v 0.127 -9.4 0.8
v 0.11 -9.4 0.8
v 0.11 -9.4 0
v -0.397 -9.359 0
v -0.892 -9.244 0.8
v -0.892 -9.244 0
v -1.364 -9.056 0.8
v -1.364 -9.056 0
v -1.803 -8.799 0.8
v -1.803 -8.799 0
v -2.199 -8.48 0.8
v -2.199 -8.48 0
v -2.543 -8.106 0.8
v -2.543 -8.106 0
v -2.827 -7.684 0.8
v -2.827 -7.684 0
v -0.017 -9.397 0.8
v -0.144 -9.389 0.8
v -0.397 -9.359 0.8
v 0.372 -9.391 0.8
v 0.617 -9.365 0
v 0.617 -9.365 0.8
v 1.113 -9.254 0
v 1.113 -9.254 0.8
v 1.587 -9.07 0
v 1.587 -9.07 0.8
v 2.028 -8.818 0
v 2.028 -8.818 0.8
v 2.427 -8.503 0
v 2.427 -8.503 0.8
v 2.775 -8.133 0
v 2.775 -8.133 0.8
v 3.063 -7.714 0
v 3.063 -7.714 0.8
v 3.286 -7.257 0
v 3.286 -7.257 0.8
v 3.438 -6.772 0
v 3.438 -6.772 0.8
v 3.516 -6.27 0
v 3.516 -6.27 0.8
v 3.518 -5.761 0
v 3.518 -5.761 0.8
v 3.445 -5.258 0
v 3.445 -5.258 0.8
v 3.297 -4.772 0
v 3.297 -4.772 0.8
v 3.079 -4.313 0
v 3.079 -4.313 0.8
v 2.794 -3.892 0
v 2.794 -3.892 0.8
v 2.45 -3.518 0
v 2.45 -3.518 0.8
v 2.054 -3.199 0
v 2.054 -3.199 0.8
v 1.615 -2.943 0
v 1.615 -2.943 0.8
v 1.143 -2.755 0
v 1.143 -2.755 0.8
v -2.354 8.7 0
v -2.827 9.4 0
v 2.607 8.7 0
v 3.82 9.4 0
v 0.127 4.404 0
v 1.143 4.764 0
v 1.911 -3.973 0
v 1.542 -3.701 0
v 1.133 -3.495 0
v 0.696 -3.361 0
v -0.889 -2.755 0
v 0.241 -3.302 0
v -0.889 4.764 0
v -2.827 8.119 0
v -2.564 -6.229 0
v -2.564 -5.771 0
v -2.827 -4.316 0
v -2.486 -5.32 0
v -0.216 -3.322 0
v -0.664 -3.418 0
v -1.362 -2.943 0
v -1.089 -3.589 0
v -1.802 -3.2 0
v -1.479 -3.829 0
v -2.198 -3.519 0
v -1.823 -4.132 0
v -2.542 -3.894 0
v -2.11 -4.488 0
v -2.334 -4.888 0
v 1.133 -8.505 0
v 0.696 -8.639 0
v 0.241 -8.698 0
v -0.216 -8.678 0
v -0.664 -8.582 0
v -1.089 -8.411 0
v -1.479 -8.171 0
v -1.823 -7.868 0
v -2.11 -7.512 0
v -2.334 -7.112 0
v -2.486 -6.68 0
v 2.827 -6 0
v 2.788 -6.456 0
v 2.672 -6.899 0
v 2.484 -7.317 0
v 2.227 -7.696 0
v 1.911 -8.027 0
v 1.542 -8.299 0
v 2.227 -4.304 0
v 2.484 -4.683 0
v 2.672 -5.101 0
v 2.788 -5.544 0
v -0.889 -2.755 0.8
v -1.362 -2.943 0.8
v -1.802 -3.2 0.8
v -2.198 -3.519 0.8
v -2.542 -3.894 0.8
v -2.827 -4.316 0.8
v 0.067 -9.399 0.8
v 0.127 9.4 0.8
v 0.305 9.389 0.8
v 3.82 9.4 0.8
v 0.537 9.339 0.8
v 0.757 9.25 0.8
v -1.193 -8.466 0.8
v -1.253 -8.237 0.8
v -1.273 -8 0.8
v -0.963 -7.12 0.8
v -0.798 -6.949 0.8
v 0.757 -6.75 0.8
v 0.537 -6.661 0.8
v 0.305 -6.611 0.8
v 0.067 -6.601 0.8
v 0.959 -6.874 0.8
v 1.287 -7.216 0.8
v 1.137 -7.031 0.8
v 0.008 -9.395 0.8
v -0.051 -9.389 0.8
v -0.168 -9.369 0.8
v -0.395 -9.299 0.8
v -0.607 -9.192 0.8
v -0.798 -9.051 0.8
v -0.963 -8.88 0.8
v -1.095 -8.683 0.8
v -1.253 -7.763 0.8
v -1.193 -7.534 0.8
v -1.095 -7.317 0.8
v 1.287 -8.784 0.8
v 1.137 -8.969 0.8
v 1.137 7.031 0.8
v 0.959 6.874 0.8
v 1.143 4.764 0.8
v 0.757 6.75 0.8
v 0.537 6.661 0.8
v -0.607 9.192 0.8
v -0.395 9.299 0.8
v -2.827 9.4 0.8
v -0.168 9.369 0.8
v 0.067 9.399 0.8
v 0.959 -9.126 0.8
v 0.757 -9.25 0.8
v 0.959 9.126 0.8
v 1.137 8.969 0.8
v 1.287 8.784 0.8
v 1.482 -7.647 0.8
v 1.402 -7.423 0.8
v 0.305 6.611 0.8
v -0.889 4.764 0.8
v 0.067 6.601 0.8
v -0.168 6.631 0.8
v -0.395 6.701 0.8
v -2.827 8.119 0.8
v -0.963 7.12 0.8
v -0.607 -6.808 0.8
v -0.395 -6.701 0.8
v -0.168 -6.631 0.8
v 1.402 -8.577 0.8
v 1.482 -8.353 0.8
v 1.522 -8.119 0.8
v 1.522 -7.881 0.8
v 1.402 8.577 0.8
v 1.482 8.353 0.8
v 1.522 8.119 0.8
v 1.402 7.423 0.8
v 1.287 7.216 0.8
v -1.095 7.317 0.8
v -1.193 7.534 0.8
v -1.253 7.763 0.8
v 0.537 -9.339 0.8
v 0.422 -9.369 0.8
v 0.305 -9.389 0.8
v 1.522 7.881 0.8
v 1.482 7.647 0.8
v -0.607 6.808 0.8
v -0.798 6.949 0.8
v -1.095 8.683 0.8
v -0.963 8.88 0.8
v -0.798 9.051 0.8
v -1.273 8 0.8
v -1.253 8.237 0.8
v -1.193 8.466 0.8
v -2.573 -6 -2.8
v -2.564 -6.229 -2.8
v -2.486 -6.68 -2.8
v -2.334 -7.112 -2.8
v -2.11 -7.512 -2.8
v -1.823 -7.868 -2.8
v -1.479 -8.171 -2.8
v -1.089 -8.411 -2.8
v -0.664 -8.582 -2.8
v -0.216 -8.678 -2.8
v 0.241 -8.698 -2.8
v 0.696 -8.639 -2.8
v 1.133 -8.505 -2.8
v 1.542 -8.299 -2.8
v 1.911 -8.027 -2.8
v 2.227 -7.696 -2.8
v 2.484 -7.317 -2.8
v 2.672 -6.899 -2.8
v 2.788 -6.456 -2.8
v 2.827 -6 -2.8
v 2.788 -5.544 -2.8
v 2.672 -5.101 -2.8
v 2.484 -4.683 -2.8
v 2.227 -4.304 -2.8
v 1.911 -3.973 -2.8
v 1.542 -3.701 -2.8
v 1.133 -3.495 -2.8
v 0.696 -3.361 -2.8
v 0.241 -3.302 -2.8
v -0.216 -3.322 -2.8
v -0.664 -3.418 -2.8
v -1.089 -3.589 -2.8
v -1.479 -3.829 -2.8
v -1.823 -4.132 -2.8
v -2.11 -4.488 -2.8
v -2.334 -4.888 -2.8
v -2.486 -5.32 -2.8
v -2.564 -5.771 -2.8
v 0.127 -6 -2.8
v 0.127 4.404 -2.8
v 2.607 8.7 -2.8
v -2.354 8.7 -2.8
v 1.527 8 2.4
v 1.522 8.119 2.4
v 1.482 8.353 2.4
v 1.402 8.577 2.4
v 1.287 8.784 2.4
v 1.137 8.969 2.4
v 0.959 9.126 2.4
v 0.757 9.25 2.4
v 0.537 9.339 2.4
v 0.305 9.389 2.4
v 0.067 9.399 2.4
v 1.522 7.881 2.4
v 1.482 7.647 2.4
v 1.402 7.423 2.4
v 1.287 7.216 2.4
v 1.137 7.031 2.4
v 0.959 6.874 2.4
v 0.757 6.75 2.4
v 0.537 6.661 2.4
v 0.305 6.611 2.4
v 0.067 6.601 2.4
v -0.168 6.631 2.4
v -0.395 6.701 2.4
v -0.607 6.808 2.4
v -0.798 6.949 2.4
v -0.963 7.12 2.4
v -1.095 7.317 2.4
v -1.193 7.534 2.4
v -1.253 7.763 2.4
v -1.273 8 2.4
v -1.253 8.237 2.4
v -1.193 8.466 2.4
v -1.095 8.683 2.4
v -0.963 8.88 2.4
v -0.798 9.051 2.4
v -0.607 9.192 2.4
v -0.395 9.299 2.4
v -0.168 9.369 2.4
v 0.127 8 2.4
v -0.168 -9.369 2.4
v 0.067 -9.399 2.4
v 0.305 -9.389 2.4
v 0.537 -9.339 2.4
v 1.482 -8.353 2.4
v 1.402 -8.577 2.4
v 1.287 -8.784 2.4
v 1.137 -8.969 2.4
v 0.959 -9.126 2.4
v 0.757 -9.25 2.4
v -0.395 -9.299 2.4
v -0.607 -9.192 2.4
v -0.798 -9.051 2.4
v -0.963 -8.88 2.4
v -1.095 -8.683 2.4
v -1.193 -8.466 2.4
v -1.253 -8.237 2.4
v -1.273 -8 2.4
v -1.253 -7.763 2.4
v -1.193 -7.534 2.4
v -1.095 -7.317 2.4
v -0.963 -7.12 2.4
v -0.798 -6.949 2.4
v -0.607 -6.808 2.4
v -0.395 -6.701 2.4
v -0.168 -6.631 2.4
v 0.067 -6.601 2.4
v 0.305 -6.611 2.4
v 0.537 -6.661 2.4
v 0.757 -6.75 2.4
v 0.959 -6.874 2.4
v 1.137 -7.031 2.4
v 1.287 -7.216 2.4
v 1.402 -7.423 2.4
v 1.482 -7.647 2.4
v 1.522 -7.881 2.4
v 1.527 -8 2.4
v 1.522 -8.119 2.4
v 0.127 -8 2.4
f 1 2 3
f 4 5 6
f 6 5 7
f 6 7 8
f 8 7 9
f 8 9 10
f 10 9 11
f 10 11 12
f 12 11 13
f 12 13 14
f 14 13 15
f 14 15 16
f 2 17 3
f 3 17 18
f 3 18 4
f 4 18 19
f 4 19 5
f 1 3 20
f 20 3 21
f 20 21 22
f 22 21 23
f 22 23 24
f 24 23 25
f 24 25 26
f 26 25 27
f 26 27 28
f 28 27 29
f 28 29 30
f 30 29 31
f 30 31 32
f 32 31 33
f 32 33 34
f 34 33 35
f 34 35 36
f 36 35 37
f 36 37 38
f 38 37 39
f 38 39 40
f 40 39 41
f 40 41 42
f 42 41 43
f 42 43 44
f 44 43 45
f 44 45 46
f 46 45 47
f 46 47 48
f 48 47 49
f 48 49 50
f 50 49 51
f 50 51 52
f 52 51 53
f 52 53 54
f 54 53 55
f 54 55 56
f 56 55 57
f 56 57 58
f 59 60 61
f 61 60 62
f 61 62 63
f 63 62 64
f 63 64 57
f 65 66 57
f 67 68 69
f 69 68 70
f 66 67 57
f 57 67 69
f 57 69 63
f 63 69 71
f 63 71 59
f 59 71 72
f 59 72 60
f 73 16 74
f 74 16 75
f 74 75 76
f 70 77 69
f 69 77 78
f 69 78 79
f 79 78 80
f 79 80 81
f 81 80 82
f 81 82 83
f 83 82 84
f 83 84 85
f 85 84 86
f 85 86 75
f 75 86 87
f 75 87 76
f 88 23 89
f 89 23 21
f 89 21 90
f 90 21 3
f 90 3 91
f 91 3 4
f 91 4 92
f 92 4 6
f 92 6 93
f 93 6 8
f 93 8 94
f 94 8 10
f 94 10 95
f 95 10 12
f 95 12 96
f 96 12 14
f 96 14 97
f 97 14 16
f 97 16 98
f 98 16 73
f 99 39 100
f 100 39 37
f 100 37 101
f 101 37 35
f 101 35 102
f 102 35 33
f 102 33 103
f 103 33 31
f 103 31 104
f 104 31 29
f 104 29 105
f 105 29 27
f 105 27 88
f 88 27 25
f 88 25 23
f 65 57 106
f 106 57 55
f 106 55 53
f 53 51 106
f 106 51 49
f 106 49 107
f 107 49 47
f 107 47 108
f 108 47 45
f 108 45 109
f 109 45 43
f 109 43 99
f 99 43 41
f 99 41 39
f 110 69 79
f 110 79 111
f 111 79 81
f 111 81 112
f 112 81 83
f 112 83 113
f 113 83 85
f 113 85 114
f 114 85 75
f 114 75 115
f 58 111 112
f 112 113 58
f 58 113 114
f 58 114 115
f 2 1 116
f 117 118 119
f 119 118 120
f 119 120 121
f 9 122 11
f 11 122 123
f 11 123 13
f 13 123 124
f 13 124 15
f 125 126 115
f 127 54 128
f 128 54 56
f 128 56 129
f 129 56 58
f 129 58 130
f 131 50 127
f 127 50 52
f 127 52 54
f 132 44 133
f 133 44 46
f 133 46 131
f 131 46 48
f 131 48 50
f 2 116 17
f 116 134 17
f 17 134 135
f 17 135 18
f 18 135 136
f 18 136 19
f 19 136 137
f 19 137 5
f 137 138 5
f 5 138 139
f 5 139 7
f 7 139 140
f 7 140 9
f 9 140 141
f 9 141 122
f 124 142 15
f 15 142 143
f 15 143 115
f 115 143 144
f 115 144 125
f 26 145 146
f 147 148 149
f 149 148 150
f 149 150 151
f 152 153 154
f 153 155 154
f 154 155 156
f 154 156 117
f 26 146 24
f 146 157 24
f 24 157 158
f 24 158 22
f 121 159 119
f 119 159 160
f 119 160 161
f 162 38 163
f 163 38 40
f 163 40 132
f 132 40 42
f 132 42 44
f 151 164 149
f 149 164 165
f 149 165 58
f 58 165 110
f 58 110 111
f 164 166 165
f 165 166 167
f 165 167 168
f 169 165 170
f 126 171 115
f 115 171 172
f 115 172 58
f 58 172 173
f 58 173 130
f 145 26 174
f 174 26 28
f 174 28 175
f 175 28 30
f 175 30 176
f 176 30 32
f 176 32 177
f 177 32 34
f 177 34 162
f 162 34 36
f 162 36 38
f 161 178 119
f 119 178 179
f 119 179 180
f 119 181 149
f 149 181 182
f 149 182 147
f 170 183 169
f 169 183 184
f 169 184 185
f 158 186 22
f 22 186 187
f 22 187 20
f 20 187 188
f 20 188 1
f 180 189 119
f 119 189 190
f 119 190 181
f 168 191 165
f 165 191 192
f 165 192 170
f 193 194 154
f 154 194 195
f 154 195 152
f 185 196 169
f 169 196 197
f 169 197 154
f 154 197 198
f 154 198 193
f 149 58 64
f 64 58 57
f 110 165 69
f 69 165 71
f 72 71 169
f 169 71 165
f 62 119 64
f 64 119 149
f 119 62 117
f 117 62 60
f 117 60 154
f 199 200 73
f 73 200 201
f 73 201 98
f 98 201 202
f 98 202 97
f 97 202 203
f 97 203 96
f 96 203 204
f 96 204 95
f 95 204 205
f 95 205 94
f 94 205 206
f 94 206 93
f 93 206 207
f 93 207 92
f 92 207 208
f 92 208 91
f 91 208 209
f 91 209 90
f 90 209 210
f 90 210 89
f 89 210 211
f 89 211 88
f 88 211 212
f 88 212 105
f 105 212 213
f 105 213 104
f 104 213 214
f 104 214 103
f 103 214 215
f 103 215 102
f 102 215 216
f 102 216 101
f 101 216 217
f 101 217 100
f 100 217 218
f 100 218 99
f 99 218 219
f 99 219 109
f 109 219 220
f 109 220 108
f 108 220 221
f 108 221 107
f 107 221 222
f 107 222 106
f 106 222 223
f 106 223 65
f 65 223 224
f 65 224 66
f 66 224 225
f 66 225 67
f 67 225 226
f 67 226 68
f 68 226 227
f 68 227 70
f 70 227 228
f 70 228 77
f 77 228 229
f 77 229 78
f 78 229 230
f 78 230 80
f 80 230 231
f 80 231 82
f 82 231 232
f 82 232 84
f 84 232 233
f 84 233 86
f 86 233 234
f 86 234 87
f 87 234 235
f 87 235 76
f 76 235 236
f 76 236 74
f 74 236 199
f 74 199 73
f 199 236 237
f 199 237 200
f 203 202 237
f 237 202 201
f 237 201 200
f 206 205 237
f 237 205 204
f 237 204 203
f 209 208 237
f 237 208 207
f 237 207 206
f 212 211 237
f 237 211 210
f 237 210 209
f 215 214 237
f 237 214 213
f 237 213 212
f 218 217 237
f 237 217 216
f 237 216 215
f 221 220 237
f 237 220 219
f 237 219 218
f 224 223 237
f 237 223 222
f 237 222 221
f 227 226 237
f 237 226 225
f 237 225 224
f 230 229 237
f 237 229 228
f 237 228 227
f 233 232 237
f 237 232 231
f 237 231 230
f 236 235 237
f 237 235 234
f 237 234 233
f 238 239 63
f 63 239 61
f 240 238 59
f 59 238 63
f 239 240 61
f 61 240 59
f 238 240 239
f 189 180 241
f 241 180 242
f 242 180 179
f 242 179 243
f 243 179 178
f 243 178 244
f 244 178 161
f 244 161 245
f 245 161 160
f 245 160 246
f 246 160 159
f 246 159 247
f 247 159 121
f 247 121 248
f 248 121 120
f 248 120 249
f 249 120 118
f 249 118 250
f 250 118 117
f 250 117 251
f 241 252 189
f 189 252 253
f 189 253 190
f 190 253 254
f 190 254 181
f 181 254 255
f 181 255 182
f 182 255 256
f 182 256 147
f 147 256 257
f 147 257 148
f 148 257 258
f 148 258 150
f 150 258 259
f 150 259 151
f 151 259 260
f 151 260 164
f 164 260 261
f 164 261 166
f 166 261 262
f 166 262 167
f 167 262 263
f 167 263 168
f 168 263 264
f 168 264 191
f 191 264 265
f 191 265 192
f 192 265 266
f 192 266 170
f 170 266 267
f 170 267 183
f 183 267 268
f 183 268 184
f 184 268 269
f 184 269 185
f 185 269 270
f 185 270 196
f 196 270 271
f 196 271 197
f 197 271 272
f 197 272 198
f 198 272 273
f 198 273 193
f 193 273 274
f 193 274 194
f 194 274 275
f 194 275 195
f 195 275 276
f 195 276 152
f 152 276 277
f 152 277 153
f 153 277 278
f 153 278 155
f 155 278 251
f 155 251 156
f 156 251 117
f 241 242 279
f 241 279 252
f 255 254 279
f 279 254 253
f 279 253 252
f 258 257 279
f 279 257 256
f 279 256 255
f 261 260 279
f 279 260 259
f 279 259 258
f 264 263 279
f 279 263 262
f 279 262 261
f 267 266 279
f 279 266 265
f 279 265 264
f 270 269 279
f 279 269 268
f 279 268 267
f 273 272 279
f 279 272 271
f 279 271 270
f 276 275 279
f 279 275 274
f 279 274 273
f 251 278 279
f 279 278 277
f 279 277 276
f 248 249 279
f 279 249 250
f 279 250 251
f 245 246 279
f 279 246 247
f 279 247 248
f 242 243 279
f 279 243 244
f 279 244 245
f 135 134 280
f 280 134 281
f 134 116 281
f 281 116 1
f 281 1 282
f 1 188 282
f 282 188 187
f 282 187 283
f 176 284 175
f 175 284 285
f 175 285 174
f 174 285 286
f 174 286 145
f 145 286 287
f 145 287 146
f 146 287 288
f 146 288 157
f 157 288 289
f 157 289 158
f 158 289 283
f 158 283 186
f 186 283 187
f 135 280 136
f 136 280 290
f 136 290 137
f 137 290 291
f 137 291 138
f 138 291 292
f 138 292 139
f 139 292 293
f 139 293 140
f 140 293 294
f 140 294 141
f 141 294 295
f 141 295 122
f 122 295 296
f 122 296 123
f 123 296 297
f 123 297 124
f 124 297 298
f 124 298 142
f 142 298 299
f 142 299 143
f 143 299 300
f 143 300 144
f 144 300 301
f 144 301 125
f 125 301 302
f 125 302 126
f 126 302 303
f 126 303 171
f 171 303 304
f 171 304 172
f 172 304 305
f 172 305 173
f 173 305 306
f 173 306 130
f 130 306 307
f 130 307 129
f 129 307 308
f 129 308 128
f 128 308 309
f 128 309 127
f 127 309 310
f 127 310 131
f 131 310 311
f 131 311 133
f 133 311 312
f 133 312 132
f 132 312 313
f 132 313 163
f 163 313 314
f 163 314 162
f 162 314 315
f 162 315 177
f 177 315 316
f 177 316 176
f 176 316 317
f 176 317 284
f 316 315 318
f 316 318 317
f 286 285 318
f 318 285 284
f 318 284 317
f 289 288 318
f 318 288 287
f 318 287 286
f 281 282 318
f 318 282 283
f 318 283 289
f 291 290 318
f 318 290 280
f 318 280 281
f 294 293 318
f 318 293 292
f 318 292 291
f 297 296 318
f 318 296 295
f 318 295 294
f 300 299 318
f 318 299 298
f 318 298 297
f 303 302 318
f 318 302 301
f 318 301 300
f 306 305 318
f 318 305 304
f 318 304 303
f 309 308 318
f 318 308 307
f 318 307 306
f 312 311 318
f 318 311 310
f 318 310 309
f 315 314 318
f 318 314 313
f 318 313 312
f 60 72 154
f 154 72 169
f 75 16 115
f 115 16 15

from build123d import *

# Parameters (mm, degrees)
SKETCH_5_R          = 3.4
EXTRUDE_2_DEPTH     = 0.8
EXTRUDE_2_2_DEPTH   = 0.8
SKETCH_6_W          = 2.031950572
SKETCH_6_H          = 7.518912136
EXTRUDE_3_DEPTH     = 0.8
SKETCH_7_R          = 2.7
EXTRUDE_4_DEPTH     = 2.8
SKETCH_8_R          = 1.4
EXTRUDE_5_DEPTH     = 1.6
SKETCH_9_W          = 4.279769968
SKETCH_9_H          = 23.306699104
CUT_EXTRUDE_1_DEPTH = 0.8


with BuildPart() as part:
    # Эскиз5 → Бобышка-Вытянуть2 (new body)
    with BuildSketch(Plane.XY):
        with Locations((0.12672506, -6)):
            Circle(SKETCH_5_R)
    extrude(amount=EXTRUDE_2_DEPTH)



with BuildPart() as body_2:
    # Эскиз5 → Extrude 2 2 (new body)
    with BuildSketch(Plane.XY):
        Polygon((-3.566095263, 9.4), (3.819545383, 9.4), (0.12672506, 3.003847577), align=None)
    extrude(amount=EXTRUDE_2_2_DEPTH)


with BuildPart() as part_1:
    add(part.part)

    add(body_2.part)  # Бобышка-Вытянуть3 merges body 2
    # Эскиз6 → Бобышка-Вытянуть3 (add)
    with BuildSketch(Plane(origin=(0, 0, 0), x_dir=(-1, 0, 0), z_dir=(0, 0, -1))):
        with Locations((-0.12672506, 1.004112324)):
            Rectangle(SKETCH_6_W, SKETCH_6_H)
    extrude(amount=-EXTRUDE_3_DEPTH)

    # Эскиз7 → Бобышка-Вытянуть4 (add)
    with BuildSketch(Plane(origin=(0, 0, 0), x_dir=(-1, 0, 0), z_dir=(0, 0, -1))):
        with Locations((-0.12672506, -6)):
            Circle(SKETCH_7_R)
        Polygon((-2.607109818, 8.7), (2.353659698, 8.7), (-0.12672506, 4.403847577), align=None)
    extrude(amount=EXTRUDE_4_DEPTH)

    # Эскиз8 → Бобышка-Вытянуть5 (add)
    with BuildSketch(Plane.XY.offset(0.8)):
        with Locations((0.12672506, 8)):
            Circle(SKETCH_8_R)
        with Locations((0.12672506, -8)):
            Circle(SKETCH_8_R)
    extrude(amount=EXTRUDE_5_DEPTH)

    # Эскиз9 → Вырез-Вытянуть1 (cut)
    with BuildSketch(Plane.XY.offset(0.8)):
        with Locations((-4.966610044, 0.180472228)):
            Rectangle(SKETCH_9_W, SKETCH_9_H)
    extrude(amount=-CUT_EXTRUDE_1_DEPTH, mode=Mode.SUBTRACT)


solid = part_1.part
